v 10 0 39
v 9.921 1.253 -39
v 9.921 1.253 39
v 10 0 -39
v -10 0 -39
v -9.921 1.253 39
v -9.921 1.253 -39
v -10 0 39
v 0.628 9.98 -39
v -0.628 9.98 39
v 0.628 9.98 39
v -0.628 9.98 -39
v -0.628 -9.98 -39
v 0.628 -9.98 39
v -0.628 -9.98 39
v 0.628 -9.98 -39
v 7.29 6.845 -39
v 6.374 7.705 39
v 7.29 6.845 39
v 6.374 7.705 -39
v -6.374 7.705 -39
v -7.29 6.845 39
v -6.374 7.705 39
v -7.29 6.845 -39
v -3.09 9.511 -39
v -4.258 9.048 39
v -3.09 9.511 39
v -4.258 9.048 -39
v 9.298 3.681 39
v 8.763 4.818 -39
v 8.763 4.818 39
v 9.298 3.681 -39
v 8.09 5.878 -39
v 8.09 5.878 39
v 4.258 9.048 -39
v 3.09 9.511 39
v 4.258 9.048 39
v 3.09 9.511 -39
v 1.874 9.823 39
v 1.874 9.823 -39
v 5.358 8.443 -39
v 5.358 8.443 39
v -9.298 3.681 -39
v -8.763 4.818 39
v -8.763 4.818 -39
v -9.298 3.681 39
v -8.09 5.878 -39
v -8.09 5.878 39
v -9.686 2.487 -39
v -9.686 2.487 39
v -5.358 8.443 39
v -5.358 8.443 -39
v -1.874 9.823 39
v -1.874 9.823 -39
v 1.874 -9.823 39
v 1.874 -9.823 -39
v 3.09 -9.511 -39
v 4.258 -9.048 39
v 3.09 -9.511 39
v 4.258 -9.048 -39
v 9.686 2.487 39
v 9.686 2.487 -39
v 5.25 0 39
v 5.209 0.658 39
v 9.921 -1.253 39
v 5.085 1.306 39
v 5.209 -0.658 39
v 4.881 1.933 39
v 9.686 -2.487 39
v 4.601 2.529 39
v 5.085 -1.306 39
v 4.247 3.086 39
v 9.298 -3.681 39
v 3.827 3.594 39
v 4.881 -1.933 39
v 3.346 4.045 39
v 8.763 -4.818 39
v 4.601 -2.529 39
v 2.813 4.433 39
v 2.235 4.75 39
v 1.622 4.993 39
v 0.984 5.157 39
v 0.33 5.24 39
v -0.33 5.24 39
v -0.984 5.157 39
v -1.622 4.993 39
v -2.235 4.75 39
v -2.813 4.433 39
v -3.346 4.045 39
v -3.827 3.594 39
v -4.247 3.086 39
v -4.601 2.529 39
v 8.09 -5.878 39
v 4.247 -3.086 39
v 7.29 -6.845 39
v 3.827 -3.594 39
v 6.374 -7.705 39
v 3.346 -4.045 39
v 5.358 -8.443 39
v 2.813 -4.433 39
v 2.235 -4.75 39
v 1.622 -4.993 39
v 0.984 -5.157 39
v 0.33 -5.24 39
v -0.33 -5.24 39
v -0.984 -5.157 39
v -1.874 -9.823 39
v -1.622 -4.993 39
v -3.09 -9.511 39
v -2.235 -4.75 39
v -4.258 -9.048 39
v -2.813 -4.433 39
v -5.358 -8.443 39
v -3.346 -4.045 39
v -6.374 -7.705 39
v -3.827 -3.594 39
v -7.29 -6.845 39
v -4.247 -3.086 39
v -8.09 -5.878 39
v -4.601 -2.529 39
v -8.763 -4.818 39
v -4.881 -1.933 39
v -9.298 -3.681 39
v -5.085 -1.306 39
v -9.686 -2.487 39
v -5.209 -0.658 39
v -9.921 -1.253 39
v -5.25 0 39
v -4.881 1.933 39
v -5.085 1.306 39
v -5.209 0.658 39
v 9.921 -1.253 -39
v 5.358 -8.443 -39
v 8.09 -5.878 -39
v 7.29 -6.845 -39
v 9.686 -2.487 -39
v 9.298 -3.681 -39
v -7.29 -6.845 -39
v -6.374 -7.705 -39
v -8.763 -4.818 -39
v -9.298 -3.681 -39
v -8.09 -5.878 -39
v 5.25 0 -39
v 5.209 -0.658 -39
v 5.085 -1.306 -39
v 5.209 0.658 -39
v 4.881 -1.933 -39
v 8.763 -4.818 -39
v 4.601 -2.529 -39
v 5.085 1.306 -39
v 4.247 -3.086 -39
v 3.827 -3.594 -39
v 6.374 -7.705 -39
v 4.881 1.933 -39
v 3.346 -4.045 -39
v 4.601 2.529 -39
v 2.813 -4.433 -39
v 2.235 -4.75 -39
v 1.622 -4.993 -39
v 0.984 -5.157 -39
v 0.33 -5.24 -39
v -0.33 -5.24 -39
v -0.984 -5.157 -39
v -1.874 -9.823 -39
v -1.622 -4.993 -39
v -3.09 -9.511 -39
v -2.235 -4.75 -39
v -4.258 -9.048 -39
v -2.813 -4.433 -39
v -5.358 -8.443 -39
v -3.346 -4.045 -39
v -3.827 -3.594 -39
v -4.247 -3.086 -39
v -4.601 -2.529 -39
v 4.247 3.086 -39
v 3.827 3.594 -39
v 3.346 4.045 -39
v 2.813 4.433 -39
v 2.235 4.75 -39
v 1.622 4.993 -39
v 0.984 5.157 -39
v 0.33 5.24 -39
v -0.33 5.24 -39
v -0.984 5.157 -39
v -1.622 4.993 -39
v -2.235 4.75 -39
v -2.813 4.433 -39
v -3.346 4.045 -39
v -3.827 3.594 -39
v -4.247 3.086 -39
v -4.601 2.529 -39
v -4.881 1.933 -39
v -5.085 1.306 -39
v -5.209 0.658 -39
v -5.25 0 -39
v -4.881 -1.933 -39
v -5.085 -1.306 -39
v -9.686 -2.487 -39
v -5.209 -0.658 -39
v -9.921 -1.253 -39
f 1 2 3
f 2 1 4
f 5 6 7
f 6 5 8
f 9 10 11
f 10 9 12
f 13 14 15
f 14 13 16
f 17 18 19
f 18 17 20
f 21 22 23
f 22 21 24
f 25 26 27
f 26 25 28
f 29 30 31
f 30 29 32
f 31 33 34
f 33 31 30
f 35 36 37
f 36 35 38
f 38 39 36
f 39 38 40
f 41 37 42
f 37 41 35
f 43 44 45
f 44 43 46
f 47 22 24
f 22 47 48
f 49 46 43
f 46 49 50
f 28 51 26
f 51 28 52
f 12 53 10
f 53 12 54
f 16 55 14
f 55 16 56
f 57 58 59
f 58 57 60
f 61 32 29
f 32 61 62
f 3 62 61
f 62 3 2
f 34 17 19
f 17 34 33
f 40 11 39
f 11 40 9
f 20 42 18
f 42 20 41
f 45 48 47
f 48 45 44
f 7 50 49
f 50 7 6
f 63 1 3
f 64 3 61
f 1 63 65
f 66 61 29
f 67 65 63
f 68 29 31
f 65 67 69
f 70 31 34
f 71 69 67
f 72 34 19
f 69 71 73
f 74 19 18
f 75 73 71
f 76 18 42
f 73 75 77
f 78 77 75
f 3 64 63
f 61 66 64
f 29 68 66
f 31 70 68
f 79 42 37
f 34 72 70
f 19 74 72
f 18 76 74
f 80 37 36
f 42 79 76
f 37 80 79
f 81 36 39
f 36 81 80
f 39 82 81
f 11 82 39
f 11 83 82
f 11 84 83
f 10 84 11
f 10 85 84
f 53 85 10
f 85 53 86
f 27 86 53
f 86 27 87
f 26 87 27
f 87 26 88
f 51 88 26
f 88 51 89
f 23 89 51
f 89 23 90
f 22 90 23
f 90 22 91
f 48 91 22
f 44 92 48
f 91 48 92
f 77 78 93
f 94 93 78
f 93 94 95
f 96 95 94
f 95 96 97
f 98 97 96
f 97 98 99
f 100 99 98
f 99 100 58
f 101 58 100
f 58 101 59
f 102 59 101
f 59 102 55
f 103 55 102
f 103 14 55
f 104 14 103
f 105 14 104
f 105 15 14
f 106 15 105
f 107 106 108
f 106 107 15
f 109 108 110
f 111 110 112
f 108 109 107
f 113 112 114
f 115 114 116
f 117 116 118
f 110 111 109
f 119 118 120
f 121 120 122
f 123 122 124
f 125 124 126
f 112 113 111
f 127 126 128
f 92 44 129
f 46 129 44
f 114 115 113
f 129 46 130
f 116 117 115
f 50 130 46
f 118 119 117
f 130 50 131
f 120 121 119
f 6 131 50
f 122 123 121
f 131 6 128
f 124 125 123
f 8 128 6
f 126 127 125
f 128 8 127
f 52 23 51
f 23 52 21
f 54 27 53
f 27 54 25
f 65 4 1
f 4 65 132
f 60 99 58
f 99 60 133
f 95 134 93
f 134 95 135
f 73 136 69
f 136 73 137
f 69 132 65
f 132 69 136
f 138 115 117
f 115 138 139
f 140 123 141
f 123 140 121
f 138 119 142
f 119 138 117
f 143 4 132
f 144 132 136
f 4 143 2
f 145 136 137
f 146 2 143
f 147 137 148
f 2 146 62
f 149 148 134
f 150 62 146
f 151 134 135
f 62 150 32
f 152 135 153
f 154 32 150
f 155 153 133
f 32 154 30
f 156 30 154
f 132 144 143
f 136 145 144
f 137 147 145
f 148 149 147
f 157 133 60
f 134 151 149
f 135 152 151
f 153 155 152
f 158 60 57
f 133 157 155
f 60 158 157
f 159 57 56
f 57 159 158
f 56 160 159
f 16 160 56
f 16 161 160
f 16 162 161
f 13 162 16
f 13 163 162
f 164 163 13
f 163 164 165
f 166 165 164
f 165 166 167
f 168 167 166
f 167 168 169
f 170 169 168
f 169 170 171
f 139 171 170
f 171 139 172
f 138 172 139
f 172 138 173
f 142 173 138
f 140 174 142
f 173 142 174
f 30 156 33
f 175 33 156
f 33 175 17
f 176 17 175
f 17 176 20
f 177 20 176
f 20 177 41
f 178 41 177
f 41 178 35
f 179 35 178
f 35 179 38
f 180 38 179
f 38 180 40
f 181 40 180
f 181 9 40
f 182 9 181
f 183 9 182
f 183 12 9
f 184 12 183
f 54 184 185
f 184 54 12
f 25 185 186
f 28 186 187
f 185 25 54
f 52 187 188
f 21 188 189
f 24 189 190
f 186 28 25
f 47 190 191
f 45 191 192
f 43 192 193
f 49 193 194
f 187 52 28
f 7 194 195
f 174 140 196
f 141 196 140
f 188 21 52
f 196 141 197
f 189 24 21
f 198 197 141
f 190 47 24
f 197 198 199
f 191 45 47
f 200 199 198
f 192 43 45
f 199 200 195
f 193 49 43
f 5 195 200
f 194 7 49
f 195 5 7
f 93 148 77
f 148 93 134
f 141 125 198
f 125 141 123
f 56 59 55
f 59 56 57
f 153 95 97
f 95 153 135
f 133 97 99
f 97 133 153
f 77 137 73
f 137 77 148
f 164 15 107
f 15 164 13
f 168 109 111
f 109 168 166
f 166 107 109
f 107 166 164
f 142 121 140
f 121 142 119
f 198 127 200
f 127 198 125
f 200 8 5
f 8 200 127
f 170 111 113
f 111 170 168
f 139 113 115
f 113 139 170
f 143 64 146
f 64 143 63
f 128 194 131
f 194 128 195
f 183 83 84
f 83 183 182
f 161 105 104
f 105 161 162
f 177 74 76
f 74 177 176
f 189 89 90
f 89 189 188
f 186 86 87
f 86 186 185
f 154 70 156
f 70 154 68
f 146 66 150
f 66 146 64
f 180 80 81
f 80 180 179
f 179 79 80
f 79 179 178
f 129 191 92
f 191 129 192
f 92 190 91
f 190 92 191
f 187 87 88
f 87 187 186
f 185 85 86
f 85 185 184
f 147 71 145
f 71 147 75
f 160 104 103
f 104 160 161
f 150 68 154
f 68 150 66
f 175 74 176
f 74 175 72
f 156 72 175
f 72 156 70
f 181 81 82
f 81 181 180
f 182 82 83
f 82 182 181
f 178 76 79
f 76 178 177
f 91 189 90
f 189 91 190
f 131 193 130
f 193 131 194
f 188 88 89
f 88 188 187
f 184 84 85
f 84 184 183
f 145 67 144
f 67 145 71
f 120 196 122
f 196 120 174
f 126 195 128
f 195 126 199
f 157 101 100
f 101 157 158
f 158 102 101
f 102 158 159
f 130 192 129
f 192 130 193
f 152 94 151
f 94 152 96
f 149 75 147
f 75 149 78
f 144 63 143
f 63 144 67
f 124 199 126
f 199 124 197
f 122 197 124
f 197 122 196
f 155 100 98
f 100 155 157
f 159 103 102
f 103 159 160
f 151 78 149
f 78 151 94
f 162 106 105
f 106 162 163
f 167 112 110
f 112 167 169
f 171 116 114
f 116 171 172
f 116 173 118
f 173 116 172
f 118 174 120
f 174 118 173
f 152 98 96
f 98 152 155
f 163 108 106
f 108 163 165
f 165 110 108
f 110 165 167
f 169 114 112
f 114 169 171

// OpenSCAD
$fn = 50;


difference() {
	union() {
		translate(v = [0, 0, -39.0000000000]) {
			cylinder(h = 78, r = 10.0000000000);
		}
	}
	union() {
		translate(v = [0, 0, -100.0000000000]) {
			cylinder(h = 200, r = 5.2500000000);
		}
	}
}
